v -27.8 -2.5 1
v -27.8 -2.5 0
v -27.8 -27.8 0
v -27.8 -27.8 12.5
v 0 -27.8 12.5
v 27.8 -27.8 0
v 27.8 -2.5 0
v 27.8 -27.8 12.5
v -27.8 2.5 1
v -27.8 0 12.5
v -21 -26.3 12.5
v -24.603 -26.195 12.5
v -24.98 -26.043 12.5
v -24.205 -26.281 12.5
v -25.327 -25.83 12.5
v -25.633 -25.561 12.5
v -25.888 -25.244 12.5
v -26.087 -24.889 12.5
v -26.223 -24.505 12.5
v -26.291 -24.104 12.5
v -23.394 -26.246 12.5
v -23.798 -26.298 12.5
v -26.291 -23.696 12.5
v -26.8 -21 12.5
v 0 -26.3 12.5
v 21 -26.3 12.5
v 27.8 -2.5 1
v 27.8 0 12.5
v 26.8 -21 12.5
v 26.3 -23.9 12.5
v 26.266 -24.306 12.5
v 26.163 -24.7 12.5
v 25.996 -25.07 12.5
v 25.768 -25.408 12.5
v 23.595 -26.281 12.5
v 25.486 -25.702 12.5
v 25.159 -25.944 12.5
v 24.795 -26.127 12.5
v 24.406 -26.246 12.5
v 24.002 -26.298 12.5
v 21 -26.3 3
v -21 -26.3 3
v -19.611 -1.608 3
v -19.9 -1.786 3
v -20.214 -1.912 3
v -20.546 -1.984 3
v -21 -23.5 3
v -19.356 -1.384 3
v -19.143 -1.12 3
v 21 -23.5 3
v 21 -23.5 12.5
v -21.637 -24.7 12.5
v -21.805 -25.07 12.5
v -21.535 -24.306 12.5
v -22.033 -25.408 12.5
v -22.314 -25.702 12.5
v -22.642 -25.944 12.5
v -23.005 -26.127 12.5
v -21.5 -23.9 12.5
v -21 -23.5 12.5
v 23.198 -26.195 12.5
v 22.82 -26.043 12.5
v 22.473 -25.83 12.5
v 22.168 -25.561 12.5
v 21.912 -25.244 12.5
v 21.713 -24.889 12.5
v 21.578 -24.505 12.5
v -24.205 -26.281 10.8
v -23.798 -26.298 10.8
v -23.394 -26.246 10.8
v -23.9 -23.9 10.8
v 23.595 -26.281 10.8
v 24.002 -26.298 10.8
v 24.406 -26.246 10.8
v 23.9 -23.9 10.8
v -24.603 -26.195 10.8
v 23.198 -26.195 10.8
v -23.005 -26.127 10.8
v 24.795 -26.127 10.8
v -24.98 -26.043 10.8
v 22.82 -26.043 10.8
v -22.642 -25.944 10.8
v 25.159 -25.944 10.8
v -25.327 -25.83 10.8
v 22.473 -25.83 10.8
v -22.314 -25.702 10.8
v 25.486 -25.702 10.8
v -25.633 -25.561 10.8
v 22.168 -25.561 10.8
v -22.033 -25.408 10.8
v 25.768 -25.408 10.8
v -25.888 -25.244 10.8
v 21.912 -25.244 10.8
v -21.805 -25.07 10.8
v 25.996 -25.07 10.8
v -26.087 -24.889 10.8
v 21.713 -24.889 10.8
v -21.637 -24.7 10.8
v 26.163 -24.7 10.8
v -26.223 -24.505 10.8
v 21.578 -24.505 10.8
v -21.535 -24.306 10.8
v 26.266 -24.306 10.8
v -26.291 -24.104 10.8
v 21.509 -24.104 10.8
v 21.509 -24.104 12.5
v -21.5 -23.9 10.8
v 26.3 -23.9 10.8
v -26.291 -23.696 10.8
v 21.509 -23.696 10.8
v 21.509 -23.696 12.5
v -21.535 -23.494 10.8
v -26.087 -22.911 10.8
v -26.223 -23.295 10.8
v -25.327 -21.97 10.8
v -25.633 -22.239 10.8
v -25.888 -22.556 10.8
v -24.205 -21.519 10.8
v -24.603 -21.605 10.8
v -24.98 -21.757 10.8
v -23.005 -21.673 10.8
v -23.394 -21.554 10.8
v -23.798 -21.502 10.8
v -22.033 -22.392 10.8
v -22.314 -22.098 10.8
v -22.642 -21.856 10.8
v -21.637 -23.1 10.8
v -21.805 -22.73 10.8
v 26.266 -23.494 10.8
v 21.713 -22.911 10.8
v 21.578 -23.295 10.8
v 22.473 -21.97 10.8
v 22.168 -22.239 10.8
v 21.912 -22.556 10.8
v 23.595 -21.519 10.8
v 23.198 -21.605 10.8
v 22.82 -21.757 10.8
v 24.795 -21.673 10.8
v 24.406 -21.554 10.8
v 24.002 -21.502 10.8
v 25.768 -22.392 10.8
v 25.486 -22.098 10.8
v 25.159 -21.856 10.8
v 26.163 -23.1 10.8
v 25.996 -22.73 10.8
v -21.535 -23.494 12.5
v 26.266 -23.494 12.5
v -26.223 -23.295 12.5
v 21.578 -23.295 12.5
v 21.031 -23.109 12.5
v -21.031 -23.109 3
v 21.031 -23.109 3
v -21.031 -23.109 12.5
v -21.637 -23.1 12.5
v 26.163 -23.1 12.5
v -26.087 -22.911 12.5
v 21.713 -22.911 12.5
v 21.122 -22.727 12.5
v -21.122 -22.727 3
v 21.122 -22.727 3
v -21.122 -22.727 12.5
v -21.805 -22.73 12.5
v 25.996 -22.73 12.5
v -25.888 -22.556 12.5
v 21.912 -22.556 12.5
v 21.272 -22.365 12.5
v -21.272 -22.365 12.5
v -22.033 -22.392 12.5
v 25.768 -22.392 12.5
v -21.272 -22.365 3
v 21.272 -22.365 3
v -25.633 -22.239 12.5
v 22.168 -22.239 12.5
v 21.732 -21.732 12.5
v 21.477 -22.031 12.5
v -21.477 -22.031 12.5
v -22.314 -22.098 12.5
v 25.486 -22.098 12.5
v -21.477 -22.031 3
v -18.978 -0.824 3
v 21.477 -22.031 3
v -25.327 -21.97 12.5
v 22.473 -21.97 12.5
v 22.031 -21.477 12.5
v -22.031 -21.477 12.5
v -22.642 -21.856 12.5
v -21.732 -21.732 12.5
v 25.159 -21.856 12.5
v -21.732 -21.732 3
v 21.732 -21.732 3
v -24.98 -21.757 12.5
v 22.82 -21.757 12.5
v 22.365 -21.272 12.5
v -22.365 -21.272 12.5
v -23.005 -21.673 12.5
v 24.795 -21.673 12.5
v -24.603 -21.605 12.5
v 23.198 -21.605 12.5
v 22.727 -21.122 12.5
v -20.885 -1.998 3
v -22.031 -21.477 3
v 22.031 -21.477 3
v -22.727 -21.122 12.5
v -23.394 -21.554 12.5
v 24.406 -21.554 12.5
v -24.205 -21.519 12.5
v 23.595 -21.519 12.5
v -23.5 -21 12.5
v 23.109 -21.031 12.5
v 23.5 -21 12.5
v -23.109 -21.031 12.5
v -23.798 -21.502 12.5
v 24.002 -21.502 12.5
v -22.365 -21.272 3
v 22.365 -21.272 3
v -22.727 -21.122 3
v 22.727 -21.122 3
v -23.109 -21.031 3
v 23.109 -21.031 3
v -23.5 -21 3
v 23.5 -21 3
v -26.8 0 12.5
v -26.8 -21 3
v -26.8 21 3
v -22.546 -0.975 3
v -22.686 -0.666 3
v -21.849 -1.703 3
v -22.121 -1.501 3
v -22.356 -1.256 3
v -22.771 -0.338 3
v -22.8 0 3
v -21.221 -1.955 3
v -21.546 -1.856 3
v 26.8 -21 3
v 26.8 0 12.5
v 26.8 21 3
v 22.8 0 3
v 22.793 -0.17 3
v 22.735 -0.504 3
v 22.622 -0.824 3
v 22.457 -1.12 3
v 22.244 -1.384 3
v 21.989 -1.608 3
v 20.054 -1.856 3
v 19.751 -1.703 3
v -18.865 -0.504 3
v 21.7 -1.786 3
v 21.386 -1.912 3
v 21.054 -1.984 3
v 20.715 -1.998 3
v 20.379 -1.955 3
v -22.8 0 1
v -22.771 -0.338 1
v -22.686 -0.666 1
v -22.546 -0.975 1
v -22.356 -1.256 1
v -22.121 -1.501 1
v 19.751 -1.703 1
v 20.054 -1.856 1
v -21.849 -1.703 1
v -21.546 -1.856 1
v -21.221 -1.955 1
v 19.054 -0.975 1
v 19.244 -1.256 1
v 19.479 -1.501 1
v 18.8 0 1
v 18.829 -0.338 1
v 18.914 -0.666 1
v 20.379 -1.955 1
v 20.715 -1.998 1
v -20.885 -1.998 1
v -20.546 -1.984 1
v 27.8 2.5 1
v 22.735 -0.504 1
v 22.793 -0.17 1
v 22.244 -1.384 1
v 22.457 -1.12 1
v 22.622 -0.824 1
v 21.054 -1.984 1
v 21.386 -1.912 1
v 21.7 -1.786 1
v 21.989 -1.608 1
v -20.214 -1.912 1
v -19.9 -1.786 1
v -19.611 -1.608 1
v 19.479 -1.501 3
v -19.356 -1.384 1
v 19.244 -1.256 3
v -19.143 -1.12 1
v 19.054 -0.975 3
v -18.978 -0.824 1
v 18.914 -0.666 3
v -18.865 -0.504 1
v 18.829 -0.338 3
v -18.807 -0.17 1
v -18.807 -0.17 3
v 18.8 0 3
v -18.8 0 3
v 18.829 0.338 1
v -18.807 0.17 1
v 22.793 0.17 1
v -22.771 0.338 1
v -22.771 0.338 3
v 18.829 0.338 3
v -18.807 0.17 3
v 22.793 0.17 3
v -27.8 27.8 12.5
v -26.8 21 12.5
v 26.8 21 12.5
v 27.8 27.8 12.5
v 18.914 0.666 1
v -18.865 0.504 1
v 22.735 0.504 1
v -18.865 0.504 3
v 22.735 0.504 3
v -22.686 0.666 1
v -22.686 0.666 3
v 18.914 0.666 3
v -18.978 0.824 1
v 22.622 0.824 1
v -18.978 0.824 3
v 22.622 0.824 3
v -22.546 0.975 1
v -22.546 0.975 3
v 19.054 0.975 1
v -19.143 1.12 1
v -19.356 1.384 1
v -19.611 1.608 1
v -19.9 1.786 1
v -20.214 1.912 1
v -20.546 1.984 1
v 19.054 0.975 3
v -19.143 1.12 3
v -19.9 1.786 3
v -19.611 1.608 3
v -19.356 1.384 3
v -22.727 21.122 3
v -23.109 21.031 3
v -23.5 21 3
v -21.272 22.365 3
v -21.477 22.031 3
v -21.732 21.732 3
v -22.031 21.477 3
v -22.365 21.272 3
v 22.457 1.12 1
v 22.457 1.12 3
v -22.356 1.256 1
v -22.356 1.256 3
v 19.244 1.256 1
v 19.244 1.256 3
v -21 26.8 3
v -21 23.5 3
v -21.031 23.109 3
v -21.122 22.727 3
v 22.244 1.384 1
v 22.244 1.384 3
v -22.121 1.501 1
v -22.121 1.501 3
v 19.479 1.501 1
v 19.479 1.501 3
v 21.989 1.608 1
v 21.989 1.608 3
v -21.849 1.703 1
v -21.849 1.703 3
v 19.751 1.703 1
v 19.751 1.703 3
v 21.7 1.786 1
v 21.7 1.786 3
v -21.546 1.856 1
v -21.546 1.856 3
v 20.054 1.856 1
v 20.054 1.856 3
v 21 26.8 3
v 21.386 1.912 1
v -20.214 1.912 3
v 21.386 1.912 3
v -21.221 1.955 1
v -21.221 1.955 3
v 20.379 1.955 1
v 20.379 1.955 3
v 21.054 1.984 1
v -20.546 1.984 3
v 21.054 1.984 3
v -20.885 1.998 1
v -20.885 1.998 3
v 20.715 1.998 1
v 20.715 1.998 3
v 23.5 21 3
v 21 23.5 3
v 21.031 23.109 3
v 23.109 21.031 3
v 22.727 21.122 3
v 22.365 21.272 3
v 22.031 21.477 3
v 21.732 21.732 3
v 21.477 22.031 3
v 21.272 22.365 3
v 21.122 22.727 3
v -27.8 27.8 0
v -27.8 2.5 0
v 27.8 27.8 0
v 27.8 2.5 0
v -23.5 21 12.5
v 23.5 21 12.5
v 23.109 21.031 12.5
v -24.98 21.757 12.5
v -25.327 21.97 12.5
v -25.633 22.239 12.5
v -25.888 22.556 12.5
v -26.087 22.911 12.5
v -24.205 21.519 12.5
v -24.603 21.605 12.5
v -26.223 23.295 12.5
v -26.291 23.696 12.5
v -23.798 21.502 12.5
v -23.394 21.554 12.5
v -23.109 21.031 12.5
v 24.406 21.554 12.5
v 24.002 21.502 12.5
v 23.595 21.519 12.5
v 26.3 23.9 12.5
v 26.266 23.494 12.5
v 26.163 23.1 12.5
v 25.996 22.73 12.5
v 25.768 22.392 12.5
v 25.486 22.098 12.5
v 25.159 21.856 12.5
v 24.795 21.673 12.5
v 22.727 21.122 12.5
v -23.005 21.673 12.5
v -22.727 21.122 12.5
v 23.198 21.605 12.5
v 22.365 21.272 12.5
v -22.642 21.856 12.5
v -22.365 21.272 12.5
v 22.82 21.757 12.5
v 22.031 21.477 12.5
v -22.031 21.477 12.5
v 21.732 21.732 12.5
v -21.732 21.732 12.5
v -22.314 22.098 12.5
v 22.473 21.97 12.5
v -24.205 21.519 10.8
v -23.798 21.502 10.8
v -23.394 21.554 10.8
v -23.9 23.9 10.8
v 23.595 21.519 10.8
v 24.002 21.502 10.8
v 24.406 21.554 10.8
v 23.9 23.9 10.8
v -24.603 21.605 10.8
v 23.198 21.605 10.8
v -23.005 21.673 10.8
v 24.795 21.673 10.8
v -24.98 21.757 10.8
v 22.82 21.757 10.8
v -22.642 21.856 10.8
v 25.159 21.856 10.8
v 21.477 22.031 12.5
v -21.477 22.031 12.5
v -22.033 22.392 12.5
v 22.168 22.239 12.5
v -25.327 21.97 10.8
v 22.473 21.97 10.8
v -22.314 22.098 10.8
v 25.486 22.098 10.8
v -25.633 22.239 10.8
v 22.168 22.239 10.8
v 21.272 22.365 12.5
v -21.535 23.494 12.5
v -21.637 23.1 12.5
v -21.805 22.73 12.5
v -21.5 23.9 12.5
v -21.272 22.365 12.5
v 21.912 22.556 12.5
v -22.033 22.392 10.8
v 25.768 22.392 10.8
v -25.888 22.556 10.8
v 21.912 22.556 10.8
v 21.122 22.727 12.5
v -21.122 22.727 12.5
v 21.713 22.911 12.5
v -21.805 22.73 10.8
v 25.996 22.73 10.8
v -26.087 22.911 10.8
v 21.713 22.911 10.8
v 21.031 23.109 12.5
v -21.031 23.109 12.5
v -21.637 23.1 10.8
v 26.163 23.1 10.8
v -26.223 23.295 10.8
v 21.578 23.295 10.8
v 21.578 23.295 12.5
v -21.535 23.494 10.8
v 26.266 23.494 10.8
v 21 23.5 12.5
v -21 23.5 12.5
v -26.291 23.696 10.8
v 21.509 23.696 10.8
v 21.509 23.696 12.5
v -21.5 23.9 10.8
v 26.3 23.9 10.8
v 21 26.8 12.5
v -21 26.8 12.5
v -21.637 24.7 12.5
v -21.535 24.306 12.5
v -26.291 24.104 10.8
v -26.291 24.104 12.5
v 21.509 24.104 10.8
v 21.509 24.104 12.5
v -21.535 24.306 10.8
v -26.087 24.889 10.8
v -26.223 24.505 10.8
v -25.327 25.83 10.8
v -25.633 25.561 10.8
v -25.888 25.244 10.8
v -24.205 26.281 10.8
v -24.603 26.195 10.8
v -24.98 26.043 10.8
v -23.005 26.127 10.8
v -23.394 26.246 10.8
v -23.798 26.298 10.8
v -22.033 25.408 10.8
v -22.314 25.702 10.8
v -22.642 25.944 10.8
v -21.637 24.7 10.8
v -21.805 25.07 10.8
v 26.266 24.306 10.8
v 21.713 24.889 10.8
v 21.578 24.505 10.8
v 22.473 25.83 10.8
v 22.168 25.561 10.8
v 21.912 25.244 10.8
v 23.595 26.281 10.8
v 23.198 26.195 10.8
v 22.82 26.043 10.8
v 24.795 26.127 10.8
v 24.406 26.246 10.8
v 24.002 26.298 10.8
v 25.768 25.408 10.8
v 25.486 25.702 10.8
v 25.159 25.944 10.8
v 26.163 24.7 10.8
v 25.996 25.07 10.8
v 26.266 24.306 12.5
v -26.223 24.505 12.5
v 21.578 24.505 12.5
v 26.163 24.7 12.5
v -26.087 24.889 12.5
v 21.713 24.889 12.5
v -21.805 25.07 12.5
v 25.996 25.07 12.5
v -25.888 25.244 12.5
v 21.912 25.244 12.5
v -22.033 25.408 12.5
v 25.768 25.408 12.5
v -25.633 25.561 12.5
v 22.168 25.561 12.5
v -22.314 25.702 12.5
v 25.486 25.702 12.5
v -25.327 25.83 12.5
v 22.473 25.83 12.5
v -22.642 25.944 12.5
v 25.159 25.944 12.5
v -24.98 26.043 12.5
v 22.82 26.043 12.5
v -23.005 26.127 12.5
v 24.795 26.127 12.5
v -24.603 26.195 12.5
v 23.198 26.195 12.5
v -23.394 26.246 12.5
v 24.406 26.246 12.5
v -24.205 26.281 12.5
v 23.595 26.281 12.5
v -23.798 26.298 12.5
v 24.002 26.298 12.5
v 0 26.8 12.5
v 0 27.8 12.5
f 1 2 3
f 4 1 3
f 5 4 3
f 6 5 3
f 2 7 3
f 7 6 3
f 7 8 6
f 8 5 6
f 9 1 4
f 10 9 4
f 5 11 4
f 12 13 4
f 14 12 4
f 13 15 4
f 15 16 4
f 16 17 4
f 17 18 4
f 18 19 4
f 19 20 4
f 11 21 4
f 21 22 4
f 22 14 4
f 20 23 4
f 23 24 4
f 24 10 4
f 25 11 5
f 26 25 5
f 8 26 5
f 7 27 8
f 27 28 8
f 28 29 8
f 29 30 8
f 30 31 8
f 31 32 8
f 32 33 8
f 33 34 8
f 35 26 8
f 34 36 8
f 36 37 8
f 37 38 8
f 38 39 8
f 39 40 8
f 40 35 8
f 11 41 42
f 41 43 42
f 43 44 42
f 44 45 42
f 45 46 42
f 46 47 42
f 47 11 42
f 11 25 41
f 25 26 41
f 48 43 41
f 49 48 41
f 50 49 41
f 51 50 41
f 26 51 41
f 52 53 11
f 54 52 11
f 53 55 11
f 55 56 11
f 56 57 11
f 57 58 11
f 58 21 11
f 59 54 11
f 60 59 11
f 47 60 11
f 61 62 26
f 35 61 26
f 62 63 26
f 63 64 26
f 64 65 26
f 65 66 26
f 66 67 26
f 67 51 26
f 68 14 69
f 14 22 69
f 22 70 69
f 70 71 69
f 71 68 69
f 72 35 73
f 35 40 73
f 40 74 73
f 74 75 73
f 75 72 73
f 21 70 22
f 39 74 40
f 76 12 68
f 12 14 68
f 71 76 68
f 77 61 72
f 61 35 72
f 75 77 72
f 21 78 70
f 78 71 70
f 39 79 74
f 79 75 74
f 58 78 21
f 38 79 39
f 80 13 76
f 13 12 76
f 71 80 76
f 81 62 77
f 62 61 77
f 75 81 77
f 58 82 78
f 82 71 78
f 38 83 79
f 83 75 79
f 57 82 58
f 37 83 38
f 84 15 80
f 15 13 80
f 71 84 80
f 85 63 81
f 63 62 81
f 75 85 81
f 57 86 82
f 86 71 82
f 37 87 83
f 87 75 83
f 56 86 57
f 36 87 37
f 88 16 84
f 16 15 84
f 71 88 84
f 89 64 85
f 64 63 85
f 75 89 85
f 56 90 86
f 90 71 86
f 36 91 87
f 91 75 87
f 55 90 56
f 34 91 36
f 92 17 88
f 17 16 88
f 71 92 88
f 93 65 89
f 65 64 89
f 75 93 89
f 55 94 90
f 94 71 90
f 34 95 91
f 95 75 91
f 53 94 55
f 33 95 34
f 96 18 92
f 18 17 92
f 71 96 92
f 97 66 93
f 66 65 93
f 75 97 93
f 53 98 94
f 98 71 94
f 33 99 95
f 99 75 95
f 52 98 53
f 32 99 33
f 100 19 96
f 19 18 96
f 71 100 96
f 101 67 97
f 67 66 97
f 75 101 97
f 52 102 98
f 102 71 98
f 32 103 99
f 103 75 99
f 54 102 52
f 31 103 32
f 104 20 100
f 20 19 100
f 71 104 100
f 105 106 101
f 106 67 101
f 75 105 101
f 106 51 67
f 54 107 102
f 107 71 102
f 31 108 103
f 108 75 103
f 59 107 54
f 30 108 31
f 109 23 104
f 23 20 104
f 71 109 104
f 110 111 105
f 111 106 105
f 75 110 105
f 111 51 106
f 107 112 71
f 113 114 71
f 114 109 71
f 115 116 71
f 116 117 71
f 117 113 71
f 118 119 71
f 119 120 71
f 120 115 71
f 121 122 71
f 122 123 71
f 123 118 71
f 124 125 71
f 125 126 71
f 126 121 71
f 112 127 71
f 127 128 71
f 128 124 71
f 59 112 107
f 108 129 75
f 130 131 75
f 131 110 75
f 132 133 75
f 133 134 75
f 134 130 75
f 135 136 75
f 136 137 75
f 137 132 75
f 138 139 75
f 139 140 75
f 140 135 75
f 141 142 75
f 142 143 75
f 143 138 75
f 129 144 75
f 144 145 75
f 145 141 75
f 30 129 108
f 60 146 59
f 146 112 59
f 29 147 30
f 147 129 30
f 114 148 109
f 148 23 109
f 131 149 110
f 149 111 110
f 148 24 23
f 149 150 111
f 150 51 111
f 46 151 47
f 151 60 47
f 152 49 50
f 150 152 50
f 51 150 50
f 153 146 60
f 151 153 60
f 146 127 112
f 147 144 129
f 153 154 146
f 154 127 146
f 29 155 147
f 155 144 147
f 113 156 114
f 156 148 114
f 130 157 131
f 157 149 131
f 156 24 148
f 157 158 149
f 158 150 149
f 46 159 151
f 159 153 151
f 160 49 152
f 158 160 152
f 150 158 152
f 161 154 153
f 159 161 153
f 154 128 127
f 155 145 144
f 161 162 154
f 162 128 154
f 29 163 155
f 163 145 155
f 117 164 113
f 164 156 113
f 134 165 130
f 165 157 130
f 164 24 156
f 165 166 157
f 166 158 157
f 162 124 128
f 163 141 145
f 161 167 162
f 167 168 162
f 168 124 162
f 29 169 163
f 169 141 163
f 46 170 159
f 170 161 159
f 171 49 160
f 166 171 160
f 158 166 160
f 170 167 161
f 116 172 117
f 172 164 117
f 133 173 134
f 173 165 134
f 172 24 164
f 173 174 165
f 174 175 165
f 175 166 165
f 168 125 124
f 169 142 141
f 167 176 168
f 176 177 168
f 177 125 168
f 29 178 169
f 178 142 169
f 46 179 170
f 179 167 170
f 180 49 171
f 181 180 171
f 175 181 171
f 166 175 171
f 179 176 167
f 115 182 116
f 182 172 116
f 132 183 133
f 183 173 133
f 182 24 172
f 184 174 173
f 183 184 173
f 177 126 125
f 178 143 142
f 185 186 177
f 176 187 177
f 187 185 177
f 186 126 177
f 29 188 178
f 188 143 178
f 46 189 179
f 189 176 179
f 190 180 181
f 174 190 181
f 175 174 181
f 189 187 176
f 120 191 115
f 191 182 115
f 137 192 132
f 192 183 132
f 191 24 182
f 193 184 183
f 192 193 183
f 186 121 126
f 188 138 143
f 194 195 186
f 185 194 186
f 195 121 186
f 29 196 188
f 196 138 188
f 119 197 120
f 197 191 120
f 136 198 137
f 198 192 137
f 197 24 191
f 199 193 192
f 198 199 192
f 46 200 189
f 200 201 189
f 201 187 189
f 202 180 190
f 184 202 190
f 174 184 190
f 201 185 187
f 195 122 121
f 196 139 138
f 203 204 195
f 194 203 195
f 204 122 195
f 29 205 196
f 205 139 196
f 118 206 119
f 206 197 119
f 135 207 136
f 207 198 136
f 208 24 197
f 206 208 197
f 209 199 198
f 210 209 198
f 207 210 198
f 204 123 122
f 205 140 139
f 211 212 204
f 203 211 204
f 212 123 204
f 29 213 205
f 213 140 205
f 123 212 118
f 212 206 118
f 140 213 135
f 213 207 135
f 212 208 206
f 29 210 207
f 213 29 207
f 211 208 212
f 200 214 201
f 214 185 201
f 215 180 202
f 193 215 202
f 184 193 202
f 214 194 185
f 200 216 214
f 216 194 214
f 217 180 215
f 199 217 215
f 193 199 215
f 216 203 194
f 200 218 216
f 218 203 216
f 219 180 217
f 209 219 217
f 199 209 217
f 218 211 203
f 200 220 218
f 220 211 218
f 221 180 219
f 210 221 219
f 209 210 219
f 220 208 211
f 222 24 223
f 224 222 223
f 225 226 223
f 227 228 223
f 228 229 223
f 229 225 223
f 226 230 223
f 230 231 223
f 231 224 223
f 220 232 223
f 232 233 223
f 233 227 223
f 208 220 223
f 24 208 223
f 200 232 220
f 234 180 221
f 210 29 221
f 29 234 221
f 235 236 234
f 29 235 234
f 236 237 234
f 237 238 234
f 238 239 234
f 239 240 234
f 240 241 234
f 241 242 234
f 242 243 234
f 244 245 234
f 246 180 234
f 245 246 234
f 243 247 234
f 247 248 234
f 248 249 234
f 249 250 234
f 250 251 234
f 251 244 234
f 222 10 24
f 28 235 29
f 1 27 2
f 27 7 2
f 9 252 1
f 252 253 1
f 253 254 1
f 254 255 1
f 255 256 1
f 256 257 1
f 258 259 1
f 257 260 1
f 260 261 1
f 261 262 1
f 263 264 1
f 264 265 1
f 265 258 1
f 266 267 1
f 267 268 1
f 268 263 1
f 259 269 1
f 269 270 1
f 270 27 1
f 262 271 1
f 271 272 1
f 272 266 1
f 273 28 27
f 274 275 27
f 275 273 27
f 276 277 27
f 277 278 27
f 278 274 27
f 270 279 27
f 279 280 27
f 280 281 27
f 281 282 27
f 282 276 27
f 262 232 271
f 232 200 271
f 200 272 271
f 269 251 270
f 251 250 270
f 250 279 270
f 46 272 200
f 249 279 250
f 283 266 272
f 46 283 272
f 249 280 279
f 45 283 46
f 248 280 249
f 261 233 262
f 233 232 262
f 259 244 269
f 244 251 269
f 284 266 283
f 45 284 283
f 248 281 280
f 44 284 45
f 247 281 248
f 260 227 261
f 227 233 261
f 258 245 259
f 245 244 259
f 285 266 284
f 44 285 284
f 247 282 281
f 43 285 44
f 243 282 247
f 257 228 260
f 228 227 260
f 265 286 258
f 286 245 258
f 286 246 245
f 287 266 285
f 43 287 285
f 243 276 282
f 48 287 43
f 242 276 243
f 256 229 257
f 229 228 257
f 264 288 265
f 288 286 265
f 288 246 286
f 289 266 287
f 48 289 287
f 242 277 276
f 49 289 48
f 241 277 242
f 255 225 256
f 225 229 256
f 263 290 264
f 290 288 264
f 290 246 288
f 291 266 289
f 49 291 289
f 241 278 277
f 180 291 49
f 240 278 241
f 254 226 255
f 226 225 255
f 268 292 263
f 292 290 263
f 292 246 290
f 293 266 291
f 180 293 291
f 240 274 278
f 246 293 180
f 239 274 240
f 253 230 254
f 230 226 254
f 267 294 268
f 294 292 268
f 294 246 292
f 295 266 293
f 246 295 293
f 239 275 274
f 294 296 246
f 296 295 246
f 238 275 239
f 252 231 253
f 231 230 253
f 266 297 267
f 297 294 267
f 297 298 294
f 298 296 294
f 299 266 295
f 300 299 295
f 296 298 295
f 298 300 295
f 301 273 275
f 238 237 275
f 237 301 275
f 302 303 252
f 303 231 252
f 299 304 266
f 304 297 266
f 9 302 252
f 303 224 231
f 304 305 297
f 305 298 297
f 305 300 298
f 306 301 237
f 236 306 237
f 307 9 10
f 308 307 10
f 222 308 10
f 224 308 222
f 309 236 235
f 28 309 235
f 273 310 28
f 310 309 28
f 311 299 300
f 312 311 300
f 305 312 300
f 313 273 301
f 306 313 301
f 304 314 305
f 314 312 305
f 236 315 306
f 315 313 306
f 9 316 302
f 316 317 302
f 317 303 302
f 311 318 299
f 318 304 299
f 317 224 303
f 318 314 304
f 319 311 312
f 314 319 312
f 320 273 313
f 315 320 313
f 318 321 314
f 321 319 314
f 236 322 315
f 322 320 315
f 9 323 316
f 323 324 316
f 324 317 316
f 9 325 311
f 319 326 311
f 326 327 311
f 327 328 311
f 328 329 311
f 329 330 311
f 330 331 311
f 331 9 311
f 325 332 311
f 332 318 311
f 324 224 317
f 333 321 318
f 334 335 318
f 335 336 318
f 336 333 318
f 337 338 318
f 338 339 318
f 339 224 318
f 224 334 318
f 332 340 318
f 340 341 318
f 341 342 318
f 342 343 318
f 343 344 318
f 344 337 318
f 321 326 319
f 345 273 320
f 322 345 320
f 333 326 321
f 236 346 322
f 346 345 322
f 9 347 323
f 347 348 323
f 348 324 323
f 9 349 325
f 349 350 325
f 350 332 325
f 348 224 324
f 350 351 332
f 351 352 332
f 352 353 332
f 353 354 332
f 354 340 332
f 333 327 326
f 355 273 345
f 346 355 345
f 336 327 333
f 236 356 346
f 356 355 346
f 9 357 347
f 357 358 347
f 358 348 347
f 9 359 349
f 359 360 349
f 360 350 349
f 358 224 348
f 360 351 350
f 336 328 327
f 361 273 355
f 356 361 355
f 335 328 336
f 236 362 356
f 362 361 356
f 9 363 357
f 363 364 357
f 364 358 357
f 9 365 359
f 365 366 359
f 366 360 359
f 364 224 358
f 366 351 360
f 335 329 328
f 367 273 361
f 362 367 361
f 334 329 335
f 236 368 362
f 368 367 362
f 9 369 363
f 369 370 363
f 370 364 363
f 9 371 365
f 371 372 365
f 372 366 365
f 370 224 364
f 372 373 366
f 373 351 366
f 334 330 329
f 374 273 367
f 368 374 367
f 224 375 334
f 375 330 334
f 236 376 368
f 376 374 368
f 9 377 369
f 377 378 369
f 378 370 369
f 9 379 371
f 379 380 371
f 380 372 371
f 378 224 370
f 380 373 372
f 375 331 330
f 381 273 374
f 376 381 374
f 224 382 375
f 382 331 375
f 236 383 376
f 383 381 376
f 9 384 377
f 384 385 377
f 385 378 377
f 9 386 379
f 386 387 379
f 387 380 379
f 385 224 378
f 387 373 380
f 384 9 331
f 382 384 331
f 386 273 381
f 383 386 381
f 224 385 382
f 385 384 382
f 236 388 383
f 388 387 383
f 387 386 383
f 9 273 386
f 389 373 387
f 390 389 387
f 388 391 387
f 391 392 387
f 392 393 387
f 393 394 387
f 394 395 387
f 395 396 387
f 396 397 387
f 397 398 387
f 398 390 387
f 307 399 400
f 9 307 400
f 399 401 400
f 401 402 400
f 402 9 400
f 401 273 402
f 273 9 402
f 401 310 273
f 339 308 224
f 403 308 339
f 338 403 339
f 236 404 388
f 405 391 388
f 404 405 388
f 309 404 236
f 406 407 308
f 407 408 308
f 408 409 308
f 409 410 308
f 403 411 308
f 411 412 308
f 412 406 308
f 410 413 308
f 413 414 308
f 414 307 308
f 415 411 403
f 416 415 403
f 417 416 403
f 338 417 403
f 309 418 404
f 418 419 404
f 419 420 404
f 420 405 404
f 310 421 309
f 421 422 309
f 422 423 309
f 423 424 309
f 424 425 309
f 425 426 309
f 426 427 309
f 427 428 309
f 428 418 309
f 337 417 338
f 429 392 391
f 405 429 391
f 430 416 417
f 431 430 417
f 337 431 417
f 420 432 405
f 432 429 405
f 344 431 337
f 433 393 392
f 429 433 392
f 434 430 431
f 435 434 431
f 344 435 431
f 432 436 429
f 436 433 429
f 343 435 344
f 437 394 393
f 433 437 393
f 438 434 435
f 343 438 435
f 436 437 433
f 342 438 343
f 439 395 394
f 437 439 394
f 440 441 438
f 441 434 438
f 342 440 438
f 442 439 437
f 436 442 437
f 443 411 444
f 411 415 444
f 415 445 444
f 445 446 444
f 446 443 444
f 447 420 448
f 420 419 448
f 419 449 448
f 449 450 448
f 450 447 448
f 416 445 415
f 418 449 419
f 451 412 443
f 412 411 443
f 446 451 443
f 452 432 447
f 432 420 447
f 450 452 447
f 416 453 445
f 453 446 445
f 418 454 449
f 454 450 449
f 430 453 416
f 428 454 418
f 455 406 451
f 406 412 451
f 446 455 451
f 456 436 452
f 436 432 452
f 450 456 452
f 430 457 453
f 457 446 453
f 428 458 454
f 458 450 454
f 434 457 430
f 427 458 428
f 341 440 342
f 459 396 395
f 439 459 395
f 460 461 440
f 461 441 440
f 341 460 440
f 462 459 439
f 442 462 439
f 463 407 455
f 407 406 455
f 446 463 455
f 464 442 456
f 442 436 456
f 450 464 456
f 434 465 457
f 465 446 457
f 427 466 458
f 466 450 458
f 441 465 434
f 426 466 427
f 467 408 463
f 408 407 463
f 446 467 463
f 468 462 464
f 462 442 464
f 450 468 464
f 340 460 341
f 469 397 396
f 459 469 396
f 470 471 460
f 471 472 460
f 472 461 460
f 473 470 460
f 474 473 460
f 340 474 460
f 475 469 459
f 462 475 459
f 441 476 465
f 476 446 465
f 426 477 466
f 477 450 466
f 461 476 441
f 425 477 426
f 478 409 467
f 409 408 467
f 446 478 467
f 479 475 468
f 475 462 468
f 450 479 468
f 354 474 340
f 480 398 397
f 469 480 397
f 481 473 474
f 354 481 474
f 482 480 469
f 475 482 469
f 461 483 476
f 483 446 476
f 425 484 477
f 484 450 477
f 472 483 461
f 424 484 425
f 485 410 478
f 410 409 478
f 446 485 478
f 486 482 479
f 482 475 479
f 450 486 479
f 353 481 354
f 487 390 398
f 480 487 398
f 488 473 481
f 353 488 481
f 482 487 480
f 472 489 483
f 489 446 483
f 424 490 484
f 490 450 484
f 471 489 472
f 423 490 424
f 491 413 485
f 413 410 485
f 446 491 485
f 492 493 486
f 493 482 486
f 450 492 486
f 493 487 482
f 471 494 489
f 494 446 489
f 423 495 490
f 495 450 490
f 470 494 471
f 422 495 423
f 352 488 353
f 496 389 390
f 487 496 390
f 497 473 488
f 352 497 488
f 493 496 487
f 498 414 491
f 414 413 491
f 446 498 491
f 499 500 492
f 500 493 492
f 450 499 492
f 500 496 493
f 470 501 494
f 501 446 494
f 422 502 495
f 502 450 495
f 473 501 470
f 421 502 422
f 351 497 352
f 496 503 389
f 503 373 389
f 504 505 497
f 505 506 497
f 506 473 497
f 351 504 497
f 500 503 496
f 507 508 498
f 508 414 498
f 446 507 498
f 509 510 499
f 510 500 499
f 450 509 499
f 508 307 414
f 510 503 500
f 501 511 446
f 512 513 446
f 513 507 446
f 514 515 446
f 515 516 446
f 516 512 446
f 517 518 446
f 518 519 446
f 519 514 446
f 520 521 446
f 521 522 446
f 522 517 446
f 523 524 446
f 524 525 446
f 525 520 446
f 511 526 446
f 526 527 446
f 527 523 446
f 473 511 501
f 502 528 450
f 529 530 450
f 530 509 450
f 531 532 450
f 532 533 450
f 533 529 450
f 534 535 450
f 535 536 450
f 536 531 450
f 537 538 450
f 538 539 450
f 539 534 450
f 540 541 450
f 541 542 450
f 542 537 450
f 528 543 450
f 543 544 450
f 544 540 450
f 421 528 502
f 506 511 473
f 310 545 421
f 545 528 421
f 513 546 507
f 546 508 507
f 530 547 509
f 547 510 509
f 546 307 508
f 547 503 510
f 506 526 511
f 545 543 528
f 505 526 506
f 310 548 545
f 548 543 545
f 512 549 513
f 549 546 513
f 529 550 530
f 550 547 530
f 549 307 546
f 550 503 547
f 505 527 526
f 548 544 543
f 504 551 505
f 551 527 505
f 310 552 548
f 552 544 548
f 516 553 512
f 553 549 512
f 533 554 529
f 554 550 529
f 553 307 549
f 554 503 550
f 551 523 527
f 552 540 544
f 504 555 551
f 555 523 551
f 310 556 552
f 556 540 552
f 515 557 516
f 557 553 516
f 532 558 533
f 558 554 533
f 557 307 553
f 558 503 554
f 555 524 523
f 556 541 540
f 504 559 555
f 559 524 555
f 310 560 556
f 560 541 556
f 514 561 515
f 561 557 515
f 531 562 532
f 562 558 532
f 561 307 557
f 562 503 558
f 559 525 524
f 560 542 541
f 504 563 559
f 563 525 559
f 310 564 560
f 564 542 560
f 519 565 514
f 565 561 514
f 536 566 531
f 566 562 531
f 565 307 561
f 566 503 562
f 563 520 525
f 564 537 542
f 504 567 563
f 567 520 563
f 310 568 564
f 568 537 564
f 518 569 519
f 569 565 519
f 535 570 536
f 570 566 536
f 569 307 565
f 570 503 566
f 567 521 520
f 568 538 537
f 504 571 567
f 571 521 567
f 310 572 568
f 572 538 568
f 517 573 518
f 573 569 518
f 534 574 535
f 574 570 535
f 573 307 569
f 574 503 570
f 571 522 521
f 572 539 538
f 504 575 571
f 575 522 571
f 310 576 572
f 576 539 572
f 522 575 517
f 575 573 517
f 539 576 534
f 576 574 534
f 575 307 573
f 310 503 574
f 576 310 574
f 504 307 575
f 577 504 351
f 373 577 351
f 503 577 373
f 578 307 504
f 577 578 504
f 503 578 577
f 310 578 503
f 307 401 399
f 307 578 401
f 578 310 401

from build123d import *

# Parameters (mm, degrees)
SKICA1_W                 = 55.6
SKICA1_H                 = 55.6
P_IDAT_VYSUNUT_M2_DEPTH  = 3
SKICA5_W                 = 55.6
SKICA5_H                 = 5
ODEBRAT_VYSUNUT_M3_DEPTH = 1
SKICA14_W                = 53.6
SKICA14_H                = 1.5
P_IDAT_VYSUNUT_M9_DEPTH  = 9.5
SKICA17_R                = 2
ODEBRAT_VYSUNUT_M8_DEPTH = 4
SKICA19_W                = 6.8
SKICA19_H                = 6.8
P_IDAT_VYSUNUT_M10_DEPTH = 12.5
SKICA20_R                = 2.4
ODEBRAT_VYSUNUT_M9_DEPTH = 1.7
ZAOBLIT1_R               = 2.5


with BuildPart() as part:
    # Skica1 → Přidat vysunutím2 (new body)
    with BuildSketch(Plane.XY):
        Rectangle(SKICA1_W, SKICA1_H)
    extrude(amount=P_IDAT_VYSUNUT_M2_DEPTH)

    # Skica5 → Odebrat vysunutím3 (cut)
    with BuildSketch(Plane(origin=(0, 0, 0), x_dir=(-1, 0, 0), z_dir=(0, 0, -1))):
        Rectangle(SKICA5_W, SKICA5_H)
    extrude(amount=-ODEBRAT_VYSUNUT_M3_DEPTH, mode=Mode.SUBTRACT)

    # Skica14 → Přidat vysunutím9 (add)
    with BuildSketch(Plane.XY.offset(3)):
        Polygon((27.8, 27.8), (-27.8, 27.8), (-27.8, -27.8), (-26.8, -27.8), (-26.8, -26.8), (-26.8, -26.3), (-26.8, 26.8), (26.8, 26.8), (26.8, -26.3), (26.8, -27.8), (27.8, -27.8), align=None)
        with Locations((0, -27.05)):
            Rectangle(SKICA14_W, SKICA14_H)
    extrude(amount=P_IDAT_VYSUNUT_M9_DEPTH)

    # Skica17 → Odebrat vysunutím8 (cut)
    with BuildSketch(Plane(origin=(0, 0, 1), x_dir=(-1, 0, 0), z_dir=(0, 0, -1))):
        with Locations((-20.8, 0)):
            Circle(SKICA17_R)
        with Locations((20.8, 0)):
            Circle(SKICA17_R)
    extrude(amount=-ODEBRAT_VYSUNUT_M8_DEPTH, mode=Mode.SUBTRACT)

    # Skica19 → Přidat vysunutím10 (add)
    with BuildSketch(Plane(origin=(0, 0, 0), x_dir=(-1, 0, 0), z_dir=(0, 0, -1))):
        with Locations((-24.4, 24.4)):
            Rectangle(SKICA19_W, SKICA19_H)
        with Locations((24.4, 24.4)):
            Rectangle(SKICA19_W, SKICA19_H)
        with Locations((-24.4, -24.4)):
            Rectangle(SKICA19_W, SKICA19_H)
        with Locations((24.4, -24.4)):
            Rectangle(SKICA19_W, SKICA19_H)
    extrude(amount=-P_IDAT_VYSUNUT_M10_DEPTH)

    # Skica20 → Odebrat vysunutím9 (cut)
    with BuildSketch(Plane.XY.offset(12.5)):
        with Locations((-23.9, -23.9)):
            Circle(SKICA20_R)
        with Locations((-23.9, 23.9)):
            Circle(SKICA20_R)
        with Locations((23.900280565, 23.9)):
            Circle(SKICA20_R)
        with Locations((23.900280565, -23.9)):
            Circle(SKICA20_R)
    extrude(amount=-ODEBRAT_VYSUNUT_M9_DEPTH, mode=Mode.SUBTRACT)

    # Zaoblit1
    zaoblit1_edges = [part.edges().sort_by_distance(p)[0] for p in [
        (21, -21, 7.75),
        (-21, -21, 7.75),
        (21, 21, 7.75),
        (-21, 21, 7.75),
    ]]
    fillet(zaoblit1_edges, radius=ZAOBLIT1_R)


solid = part.part
